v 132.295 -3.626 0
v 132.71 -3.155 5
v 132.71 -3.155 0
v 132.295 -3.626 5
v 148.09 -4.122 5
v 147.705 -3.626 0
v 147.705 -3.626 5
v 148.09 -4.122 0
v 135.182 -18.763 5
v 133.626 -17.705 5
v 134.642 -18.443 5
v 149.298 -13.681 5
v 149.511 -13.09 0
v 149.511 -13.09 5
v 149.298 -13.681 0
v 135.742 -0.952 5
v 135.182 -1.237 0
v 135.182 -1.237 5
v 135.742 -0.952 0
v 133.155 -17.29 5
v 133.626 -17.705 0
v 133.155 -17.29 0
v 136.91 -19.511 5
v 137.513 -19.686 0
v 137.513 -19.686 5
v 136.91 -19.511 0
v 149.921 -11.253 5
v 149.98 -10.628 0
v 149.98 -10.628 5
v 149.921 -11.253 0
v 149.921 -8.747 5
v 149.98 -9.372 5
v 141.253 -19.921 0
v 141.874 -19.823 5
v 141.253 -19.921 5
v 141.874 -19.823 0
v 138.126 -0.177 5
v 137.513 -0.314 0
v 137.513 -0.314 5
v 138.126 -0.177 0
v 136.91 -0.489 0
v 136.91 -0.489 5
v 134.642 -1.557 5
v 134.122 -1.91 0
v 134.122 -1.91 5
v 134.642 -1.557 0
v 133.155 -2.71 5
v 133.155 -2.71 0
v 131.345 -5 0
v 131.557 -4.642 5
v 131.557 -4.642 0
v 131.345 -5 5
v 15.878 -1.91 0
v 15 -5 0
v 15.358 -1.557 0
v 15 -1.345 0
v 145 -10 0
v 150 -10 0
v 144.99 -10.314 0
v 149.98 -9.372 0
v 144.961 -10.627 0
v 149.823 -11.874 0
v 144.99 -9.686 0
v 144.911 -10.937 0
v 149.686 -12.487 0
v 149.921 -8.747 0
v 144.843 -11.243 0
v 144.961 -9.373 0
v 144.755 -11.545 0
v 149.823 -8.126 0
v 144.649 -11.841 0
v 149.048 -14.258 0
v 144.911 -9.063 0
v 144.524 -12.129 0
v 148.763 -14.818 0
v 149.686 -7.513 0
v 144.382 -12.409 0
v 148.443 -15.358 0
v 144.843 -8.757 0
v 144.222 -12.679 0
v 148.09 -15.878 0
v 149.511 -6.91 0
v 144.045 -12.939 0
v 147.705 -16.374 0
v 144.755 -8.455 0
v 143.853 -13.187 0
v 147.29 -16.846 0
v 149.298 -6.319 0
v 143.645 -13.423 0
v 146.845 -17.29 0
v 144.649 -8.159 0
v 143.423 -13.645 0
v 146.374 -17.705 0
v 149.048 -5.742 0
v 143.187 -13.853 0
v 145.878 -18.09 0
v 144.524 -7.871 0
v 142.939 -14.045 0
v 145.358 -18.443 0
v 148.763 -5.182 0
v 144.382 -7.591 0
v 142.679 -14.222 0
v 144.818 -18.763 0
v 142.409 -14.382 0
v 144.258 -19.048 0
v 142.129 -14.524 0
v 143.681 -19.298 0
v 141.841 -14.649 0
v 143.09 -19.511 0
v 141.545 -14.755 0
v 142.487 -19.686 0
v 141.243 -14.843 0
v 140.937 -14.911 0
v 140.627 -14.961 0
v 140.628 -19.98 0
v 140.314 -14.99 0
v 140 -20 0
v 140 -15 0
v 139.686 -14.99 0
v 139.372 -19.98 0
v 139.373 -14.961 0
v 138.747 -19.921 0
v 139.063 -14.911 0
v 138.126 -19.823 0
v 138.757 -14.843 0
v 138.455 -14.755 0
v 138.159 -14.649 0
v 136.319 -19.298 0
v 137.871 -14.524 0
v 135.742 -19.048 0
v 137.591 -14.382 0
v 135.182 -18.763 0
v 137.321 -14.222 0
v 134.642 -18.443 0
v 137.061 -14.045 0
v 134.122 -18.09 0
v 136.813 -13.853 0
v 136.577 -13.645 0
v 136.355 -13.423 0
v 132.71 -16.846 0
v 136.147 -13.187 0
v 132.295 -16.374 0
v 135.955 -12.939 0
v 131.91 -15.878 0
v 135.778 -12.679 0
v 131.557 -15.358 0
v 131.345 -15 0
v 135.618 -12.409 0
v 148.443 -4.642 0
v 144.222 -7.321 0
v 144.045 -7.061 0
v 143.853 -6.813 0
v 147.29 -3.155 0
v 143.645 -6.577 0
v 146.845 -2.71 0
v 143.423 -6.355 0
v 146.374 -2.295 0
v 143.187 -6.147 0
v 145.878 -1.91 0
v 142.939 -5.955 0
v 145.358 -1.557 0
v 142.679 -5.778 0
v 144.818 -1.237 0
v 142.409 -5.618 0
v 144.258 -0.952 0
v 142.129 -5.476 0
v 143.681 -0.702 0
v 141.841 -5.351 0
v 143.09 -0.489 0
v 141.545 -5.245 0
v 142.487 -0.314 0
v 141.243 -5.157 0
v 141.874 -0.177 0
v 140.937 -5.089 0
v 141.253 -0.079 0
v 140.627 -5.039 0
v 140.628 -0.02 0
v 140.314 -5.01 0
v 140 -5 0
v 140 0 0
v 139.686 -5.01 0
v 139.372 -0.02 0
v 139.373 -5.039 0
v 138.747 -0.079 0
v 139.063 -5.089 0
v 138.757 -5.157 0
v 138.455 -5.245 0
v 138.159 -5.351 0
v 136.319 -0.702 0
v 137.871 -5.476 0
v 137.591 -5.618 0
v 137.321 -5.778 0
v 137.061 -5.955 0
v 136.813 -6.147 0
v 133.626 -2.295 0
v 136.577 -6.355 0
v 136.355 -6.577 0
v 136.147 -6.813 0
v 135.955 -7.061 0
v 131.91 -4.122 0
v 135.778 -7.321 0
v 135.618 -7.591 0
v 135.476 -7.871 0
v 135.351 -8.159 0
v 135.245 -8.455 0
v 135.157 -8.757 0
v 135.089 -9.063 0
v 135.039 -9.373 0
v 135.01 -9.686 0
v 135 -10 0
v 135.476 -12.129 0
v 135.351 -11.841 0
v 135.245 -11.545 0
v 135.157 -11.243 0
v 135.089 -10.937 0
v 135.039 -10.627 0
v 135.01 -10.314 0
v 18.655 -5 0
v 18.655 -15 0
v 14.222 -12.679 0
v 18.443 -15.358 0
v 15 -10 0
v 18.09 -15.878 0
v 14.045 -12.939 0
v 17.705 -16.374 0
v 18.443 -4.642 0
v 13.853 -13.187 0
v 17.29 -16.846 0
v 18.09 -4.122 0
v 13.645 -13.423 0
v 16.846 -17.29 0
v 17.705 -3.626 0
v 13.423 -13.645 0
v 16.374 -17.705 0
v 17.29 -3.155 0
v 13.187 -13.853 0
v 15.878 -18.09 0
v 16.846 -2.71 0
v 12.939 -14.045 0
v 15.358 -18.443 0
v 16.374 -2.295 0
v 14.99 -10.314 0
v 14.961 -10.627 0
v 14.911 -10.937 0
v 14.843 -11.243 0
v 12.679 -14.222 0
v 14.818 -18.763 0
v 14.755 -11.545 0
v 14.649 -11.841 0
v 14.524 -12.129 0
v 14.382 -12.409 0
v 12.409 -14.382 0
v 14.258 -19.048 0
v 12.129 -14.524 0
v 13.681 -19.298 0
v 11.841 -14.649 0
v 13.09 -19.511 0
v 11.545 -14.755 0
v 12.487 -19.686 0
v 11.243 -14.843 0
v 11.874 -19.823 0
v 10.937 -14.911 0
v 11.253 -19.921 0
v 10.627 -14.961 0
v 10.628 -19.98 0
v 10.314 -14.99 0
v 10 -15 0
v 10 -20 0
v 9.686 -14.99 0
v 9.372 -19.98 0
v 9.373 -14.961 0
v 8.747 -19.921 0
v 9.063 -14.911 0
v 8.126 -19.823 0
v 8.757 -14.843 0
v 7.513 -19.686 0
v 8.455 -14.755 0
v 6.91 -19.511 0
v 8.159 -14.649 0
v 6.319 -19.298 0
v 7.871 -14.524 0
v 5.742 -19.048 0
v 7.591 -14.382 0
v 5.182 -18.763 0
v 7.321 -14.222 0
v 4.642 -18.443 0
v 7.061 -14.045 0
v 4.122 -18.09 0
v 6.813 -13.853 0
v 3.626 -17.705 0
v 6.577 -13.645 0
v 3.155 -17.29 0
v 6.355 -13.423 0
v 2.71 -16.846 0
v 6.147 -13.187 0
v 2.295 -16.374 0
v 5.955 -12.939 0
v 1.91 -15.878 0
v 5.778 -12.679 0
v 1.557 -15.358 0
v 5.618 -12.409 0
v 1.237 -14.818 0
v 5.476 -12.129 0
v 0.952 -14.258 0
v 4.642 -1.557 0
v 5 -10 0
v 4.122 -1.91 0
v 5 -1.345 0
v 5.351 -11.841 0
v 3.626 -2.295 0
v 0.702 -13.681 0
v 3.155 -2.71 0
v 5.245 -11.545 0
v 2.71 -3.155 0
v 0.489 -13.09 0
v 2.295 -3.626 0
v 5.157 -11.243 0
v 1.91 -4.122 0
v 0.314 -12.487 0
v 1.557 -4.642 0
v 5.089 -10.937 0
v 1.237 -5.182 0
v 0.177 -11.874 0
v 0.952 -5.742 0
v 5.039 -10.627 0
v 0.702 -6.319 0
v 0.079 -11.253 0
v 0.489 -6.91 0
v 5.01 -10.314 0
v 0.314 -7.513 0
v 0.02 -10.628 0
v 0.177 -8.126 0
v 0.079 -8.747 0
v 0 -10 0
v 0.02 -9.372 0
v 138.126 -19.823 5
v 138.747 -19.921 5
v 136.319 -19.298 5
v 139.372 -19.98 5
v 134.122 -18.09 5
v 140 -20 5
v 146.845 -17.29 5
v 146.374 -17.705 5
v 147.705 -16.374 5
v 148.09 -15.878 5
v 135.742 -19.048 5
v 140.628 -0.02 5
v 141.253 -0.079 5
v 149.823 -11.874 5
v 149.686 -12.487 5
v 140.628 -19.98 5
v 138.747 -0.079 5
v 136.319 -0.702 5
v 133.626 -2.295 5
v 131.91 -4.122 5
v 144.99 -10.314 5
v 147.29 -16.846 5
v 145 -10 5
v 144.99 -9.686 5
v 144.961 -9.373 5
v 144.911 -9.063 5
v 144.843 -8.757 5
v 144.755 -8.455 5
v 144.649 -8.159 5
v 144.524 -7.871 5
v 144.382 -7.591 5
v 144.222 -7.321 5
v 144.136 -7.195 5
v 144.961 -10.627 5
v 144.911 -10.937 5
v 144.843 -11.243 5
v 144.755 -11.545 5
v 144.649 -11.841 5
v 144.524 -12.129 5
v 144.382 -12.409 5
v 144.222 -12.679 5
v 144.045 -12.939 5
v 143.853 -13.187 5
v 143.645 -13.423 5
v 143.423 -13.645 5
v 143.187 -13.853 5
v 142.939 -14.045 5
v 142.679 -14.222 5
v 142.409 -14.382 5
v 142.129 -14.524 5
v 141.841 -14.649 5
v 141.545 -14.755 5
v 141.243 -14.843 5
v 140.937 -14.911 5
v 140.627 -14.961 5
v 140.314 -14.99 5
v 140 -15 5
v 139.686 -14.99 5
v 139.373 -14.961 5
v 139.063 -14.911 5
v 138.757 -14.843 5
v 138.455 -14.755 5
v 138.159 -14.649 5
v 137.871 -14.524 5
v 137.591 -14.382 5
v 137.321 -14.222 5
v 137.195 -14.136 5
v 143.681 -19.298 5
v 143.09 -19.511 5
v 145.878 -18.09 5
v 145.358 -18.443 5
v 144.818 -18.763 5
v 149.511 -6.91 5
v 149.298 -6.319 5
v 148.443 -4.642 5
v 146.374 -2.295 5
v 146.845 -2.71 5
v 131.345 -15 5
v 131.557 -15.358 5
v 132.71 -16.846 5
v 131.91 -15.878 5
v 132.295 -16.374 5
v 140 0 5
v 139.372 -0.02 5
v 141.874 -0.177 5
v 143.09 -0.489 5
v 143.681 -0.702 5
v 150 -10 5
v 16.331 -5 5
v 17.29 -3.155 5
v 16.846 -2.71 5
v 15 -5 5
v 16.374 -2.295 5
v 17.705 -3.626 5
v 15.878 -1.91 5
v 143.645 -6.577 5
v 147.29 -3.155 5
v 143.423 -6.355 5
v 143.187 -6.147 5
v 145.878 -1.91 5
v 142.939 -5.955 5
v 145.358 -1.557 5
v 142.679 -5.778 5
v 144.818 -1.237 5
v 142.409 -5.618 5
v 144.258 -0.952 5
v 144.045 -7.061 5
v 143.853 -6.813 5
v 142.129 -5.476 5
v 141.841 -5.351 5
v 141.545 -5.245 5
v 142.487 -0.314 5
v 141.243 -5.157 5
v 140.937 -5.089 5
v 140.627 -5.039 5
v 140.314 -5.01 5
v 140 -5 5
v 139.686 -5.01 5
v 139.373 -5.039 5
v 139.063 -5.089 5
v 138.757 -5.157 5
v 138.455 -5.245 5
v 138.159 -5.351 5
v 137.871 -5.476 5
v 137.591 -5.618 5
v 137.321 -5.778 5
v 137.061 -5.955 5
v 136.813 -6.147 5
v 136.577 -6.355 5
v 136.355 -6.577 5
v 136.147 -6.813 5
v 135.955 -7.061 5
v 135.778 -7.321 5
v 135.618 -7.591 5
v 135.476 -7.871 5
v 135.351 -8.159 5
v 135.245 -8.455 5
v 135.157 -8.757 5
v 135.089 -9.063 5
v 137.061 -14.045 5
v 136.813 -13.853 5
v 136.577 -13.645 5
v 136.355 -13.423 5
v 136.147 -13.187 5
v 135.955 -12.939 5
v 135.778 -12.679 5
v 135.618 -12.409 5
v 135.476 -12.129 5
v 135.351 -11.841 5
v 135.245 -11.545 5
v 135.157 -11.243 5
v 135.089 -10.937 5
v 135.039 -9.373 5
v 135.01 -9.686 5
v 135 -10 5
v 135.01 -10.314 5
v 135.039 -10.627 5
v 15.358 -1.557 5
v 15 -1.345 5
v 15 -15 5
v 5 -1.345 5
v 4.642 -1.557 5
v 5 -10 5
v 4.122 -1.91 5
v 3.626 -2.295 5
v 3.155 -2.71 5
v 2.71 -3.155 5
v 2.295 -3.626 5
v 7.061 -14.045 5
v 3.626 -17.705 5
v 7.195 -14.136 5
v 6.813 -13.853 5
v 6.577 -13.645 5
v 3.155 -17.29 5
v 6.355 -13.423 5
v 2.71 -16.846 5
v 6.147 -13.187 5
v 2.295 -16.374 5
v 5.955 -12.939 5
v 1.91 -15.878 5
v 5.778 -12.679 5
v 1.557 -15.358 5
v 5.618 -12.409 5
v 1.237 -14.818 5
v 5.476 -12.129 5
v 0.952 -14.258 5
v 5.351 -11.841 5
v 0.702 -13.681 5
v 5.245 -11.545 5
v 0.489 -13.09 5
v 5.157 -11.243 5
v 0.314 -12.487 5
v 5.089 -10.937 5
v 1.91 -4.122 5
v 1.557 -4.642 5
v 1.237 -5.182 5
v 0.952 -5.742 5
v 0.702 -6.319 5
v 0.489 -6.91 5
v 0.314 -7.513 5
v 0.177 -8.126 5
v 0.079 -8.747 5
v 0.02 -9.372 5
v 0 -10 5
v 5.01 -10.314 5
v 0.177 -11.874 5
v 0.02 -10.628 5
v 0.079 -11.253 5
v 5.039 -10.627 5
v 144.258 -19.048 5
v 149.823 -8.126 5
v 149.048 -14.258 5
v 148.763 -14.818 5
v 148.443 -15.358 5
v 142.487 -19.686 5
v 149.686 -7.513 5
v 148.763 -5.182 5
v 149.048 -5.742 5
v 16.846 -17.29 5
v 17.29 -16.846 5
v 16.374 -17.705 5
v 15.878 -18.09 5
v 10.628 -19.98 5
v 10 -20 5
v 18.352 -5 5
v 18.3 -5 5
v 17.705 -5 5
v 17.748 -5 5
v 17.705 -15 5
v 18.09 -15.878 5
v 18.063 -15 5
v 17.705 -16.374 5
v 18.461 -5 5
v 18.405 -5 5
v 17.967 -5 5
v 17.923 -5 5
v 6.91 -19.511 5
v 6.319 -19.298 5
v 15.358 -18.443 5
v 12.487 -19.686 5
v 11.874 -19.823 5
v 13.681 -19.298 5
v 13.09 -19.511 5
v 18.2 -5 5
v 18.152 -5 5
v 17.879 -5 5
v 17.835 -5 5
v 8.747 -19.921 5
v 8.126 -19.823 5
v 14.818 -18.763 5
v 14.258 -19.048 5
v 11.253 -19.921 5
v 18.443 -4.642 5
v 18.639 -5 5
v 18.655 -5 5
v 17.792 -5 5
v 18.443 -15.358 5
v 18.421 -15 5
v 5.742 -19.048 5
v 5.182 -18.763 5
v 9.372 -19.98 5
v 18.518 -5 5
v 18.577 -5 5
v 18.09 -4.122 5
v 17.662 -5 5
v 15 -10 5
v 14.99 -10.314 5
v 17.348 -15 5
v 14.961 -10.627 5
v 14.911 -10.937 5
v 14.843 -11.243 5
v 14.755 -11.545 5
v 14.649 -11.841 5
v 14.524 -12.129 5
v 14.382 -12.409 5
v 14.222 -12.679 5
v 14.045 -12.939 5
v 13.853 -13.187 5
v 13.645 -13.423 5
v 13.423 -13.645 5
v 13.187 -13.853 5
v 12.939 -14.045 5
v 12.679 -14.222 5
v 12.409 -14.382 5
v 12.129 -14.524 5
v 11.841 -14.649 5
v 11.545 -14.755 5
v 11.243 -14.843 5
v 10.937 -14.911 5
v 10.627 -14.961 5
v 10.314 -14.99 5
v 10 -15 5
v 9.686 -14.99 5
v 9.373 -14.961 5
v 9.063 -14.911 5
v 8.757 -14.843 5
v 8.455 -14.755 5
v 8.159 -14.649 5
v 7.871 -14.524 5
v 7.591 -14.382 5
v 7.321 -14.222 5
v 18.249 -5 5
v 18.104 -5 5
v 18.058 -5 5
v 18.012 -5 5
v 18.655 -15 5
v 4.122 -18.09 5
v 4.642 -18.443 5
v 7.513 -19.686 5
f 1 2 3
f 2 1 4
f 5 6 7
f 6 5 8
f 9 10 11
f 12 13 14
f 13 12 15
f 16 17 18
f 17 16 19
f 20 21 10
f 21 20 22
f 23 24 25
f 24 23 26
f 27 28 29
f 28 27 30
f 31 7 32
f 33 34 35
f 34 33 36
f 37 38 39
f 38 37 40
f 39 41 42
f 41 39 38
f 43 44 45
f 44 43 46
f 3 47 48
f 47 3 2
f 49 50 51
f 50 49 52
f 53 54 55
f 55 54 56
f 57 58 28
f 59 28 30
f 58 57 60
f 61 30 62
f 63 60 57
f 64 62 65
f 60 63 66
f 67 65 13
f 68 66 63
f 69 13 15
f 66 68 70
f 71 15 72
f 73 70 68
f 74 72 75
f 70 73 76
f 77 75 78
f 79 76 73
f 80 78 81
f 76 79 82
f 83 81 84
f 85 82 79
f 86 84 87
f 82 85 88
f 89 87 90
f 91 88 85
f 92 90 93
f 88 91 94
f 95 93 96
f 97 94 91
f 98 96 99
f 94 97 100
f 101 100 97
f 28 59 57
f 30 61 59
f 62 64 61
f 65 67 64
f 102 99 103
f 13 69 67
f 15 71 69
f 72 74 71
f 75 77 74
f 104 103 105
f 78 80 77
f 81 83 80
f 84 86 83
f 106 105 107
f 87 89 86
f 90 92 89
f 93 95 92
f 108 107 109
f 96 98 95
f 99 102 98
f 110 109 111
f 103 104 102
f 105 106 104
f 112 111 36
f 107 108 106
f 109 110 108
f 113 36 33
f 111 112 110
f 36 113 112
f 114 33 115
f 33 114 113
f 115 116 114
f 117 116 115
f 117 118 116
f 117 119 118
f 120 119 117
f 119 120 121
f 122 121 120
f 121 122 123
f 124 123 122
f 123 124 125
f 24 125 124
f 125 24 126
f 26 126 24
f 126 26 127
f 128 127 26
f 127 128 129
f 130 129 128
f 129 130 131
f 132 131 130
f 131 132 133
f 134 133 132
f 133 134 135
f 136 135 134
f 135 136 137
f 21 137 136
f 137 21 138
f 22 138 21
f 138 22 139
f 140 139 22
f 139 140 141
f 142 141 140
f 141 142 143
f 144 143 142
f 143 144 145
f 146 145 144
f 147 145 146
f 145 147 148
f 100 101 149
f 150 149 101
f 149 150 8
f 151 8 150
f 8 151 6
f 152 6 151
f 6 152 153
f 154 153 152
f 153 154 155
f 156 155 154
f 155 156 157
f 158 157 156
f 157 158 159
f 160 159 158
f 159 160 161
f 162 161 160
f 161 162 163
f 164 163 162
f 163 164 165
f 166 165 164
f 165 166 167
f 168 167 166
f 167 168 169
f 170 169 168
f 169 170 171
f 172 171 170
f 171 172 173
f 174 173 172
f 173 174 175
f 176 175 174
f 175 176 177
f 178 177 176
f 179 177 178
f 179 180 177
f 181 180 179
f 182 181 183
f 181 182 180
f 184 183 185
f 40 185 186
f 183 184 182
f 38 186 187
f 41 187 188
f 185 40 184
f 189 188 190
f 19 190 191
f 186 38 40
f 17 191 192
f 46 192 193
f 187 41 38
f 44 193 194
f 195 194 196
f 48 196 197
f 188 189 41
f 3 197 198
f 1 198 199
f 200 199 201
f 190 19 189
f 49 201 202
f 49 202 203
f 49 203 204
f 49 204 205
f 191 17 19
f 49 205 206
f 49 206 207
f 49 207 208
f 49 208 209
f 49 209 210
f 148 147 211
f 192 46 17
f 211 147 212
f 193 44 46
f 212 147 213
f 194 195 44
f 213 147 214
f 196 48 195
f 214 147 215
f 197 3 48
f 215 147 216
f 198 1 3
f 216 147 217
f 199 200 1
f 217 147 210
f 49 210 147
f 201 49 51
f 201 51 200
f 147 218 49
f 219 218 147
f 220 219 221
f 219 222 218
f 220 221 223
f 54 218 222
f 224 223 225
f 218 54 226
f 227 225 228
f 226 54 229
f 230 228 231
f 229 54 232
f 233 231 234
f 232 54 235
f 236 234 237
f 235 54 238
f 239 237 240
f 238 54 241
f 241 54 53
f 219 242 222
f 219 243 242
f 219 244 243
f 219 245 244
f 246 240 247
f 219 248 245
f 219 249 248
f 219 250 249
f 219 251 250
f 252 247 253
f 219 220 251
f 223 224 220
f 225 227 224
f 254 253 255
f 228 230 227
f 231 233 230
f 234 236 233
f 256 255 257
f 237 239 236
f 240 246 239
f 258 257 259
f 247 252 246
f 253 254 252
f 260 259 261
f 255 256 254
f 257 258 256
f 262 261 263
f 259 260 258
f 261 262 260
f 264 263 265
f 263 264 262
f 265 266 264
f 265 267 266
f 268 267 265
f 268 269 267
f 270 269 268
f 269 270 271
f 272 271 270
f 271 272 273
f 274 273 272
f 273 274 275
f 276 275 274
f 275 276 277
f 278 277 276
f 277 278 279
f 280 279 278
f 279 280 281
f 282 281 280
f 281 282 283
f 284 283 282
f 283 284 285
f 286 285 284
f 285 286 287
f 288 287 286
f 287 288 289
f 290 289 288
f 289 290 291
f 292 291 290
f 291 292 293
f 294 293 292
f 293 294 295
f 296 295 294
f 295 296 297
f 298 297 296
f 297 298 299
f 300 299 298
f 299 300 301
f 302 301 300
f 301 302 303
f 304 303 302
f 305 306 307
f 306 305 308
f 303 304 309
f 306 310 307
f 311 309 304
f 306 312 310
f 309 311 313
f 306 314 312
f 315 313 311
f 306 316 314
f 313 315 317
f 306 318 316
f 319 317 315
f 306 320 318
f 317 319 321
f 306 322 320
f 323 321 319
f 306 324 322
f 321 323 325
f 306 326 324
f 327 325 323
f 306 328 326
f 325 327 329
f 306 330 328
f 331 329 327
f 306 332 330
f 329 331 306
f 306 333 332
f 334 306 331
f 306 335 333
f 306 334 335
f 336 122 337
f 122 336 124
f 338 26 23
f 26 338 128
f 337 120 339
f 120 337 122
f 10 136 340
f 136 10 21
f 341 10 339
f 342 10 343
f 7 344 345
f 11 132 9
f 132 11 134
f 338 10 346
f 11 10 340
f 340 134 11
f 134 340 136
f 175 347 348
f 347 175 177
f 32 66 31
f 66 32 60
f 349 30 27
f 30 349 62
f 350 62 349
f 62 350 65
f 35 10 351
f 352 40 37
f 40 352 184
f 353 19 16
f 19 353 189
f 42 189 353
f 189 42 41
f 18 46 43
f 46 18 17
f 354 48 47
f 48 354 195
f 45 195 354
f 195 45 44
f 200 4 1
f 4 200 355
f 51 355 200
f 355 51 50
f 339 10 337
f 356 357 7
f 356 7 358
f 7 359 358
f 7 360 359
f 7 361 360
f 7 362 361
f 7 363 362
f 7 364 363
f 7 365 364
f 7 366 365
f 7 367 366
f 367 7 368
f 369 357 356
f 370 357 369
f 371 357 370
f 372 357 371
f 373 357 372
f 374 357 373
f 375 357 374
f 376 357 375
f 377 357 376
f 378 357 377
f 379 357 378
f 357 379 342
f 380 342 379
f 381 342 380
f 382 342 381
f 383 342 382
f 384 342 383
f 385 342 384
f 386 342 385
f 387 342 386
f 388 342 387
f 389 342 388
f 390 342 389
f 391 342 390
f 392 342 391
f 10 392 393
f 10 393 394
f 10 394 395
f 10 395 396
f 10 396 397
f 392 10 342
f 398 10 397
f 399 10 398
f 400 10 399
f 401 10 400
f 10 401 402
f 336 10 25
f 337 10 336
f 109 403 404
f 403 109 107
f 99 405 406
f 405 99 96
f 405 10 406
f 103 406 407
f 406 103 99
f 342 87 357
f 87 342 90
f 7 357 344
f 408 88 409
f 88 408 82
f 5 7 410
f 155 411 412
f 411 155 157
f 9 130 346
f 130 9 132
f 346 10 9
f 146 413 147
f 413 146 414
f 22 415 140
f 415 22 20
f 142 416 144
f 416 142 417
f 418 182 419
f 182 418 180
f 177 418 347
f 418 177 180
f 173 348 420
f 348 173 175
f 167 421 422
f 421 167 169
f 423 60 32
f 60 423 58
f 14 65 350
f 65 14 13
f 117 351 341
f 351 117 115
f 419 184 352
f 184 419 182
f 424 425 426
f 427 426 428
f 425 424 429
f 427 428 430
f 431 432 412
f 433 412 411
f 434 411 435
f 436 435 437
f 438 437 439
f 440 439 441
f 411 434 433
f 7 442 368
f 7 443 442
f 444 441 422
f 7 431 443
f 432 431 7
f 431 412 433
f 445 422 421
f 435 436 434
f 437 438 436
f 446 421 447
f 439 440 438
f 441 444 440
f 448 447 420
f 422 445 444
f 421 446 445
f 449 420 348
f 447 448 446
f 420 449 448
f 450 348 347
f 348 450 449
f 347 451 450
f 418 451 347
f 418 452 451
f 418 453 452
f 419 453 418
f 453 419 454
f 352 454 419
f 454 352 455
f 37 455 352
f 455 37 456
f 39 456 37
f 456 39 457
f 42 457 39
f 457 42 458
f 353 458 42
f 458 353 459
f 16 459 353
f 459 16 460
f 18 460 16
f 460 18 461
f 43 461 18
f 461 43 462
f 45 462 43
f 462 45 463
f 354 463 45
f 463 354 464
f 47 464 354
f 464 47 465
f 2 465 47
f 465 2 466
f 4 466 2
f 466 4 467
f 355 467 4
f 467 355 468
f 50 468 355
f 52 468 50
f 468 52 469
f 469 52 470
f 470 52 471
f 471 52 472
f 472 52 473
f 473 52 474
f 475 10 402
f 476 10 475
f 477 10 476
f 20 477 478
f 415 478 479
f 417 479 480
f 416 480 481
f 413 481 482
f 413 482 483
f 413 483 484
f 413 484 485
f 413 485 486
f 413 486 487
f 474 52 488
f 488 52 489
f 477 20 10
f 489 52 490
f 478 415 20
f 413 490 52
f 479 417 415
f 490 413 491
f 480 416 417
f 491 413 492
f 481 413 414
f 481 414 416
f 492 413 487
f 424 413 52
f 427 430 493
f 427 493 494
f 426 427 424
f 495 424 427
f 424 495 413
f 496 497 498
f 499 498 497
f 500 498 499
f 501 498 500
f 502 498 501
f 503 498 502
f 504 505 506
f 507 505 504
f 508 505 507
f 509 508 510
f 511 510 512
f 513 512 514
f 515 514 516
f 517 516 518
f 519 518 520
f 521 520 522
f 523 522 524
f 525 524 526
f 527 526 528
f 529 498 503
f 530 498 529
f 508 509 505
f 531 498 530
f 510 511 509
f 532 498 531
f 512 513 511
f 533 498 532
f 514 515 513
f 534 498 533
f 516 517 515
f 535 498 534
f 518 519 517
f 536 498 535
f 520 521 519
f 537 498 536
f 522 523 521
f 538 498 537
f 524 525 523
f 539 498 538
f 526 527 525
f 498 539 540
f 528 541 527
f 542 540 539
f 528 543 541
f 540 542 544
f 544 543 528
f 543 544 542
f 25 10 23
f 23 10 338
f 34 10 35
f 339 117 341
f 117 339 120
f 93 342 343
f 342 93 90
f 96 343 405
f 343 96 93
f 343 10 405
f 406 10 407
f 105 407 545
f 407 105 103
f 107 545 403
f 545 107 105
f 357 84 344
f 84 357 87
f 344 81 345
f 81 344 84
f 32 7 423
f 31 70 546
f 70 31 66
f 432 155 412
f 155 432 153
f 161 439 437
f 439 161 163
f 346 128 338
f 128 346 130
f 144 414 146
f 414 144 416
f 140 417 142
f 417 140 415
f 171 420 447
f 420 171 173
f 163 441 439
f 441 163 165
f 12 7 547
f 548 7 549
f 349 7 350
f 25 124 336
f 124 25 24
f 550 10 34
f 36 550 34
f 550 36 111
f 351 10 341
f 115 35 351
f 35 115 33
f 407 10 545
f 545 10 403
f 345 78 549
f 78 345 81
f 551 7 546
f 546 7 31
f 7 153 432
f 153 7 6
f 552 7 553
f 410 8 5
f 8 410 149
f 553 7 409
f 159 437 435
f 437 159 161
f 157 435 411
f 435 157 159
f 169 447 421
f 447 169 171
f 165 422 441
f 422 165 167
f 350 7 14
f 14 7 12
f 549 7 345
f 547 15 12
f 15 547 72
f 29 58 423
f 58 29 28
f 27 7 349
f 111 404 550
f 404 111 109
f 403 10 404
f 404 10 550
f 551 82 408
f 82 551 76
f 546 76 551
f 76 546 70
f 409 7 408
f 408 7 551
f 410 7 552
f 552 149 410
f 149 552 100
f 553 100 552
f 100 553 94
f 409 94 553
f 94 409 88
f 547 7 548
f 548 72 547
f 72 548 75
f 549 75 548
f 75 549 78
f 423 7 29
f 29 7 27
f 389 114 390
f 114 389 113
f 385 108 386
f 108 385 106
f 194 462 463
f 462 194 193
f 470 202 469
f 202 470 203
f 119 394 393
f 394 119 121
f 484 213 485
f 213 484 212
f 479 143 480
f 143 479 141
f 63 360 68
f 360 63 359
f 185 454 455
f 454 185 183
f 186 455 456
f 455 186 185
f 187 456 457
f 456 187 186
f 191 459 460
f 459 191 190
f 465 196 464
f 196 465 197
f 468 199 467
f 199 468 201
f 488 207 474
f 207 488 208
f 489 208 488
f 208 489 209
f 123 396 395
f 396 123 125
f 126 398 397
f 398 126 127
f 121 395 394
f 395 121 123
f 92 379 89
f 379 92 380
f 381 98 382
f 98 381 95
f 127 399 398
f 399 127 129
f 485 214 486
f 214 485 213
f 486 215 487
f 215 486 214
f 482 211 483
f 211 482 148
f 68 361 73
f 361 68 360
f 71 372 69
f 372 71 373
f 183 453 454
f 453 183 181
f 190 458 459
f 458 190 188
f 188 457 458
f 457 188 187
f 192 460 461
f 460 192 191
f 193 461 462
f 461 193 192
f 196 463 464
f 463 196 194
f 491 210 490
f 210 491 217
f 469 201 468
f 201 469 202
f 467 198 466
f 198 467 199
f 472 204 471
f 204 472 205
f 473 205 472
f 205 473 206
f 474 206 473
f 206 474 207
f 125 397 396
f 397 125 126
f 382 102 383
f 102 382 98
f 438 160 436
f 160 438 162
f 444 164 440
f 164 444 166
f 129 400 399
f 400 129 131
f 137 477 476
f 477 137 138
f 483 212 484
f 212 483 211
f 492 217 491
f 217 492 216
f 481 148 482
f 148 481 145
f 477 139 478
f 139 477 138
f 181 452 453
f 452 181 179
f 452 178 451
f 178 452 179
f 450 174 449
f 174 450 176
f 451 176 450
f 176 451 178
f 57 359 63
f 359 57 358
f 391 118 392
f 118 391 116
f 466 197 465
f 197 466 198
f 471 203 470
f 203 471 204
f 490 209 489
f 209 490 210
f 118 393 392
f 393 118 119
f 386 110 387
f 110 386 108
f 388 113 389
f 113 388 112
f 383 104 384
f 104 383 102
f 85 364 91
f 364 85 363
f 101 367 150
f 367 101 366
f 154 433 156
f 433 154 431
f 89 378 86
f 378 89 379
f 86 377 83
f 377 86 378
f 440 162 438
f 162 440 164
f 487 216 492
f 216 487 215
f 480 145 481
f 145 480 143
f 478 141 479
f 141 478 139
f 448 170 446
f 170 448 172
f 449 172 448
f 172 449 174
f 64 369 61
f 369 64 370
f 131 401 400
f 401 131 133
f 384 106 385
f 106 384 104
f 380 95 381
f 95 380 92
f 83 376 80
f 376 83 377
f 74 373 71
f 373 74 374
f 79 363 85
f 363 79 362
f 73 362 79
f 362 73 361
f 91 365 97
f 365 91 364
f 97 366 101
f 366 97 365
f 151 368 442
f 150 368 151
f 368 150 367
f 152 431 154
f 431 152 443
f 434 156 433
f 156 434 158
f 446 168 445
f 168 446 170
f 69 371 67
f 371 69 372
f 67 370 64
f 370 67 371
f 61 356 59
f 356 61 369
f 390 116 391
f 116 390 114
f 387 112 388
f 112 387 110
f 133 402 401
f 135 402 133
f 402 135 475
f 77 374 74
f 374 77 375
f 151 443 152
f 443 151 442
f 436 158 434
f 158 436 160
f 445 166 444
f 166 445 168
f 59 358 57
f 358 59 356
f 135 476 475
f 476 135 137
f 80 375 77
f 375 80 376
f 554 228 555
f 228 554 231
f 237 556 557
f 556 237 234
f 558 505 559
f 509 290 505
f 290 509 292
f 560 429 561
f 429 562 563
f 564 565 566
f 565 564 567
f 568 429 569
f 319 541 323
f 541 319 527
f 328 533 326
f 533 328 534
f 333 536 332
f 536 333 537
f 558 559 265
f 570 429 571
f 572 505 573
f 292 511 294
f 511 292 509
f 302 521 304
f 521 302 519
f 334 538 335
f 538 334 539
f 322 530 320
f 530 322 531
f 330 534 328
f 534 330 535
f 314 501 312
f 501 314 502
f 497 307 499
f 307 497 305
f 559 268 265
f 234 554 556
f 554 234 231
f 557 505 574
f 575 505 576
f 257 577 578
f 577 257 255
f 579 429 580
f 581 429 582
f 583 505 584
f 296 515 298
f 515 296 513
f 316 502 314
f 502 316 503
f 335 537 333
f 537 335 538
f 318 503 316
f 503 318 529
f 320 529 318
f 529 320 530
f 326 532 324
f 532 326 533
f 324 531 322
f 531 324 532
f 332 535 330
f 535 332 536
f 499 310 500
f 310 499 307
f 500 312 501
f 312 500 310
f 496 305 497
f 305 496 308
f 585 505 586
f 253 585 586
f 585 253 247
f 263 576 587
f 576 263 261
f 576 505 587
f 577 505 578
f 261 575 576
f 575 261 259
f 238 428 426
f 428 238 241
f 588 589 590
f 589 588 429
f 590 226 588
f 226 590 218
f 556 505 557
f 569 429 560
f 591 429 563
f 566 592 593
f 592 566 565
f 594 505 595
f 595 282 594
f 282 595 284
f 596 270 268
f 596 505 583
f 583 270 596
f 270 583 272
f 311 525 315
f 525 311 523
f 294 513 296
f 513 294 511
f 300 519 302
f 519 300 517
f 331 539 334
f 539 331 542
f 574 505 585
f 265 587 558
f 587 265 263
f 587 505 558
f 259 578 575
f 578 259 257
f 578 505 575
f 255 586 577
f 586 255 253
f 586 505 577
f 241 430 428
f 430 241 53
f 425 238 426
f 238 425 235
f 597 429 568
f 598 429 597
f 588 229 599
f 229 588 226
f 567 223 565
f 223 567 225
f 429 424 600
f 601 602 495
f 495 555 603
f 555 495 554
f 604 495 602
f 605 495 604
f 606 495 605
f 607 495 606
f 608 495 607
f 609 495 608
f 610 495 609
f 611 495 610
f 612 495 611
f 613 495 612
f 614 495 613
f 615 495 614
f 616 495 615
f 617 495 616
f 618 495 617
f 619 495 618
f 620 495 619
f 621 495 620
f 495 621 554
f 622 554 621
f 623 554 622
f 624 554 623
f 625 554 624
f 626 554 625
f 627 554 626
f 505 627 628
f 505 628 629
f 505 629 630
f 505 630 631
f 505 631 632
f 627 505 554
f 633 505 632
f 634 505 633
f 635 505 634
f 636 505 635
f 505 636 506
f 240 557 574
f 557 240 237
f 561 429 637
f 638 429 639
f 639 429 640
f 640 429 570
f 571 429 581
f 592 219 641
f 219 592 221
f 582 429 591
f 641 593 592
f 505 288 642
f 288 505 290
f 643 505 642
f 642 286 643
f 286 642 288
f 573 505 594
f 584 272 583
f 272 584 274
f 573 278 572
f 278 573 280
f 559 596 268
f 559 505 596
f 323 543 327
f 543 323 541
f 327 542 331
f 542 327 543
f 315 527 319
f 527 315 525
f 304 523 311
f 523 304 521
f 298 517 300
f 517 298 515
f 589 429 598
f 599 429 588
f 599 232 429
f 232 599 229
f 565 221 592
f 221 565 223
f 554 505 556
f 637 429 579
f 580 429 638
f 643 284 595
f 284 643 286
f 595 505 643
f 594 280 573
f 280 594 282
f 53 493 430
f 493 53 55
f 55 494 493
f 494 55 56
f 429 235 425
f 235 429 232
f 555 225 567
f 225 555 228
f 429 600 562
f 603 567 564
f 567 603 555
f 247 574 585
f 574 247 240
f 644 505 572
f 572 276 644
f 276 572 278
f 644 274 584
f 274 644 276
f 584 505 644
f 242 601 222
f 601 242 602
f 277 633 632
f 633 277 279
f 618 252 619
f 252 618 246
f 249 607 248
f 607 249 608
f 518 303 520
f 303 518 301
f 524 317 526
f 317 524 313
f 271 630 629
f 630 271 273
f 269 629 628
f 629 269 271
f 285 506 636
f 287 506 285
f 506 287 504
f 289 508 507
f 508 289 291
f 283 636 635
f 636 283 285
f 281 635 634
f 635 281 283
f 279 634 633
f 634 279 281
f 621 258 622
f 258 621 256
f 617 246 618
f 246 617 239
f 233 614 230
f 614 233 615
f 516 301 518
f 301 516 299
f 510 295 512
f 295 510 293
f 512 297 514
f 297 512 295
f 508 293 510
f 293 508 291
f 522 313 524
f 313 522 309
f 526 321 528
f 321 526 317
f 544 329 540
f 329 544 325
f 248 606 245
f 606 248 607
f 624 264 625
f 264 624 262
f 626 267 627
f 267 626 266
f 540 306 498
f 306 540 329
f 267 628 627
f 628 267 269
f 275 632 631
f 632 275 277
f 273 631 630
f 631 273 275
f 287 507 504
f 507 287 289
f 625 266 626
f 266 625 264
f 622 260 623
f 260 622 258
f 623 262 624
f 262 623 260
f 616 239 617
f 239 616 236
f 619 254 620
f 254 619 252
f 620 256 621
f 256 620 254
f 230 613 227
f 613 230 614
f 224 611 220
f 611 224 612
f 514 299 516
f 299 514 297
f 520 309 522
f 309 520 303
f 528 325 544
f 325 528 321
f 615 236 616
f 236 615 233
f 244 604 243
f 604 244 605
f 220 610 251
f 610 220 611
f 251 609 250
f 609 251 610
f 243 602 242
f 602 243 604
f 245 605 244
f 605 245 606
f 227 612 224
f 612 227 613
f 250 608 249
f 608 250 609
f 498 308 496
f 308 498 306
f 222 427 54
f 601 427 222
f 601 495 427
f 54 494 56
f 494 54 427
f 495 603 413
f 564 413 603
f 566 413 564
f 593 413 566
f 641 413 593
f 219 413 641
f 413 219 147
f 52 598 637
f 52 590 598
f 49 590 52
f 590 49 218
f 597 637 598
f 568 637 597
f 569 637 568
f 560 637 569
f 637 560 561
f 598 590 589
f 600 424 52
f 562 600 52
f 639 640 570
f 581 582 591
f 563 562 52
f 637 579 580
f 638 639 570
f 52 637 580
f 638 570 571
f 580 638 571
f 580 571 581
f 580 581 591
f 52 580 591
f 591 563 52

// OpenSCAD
//--------------------------------------------------------------
// Name: Locker.
// Version: 1.5
// Purpose: Замок.
// Author: Evgeny Klepikov
// E-mail: klek07@ya.ru
//
// Created: 23.09.2017
// Updated: 23.09.2017
// Copyright: (c) 2017 WildFox24
// Licence: GPL v3
//--------------------------------------------------------------
//Rotate to print on bed
rotate([90,0,0]){
translate([15,0,5]) cube([120,5,10]);
difference() {
    translate([10,0,10]) rotate([0,90,90]) cylinder(h=5, d=20, $fn=100);
    translate([10,0,10]) rotate([0,90,90]) cylinder(h=6, d=10, $fn=100);
    color("blue") translate([5,0,0]) rotate([0,0,0]) cube([10,6,10]);
}
difference() {
    translate([140,0,10]) rotate([0,90,90]) cylinder(h=5, d=20, $fn=100);
    translate([140,0,10]) rotate([0,90,90]) cylinder(h=6, d=10, $fn=100);
}
}
